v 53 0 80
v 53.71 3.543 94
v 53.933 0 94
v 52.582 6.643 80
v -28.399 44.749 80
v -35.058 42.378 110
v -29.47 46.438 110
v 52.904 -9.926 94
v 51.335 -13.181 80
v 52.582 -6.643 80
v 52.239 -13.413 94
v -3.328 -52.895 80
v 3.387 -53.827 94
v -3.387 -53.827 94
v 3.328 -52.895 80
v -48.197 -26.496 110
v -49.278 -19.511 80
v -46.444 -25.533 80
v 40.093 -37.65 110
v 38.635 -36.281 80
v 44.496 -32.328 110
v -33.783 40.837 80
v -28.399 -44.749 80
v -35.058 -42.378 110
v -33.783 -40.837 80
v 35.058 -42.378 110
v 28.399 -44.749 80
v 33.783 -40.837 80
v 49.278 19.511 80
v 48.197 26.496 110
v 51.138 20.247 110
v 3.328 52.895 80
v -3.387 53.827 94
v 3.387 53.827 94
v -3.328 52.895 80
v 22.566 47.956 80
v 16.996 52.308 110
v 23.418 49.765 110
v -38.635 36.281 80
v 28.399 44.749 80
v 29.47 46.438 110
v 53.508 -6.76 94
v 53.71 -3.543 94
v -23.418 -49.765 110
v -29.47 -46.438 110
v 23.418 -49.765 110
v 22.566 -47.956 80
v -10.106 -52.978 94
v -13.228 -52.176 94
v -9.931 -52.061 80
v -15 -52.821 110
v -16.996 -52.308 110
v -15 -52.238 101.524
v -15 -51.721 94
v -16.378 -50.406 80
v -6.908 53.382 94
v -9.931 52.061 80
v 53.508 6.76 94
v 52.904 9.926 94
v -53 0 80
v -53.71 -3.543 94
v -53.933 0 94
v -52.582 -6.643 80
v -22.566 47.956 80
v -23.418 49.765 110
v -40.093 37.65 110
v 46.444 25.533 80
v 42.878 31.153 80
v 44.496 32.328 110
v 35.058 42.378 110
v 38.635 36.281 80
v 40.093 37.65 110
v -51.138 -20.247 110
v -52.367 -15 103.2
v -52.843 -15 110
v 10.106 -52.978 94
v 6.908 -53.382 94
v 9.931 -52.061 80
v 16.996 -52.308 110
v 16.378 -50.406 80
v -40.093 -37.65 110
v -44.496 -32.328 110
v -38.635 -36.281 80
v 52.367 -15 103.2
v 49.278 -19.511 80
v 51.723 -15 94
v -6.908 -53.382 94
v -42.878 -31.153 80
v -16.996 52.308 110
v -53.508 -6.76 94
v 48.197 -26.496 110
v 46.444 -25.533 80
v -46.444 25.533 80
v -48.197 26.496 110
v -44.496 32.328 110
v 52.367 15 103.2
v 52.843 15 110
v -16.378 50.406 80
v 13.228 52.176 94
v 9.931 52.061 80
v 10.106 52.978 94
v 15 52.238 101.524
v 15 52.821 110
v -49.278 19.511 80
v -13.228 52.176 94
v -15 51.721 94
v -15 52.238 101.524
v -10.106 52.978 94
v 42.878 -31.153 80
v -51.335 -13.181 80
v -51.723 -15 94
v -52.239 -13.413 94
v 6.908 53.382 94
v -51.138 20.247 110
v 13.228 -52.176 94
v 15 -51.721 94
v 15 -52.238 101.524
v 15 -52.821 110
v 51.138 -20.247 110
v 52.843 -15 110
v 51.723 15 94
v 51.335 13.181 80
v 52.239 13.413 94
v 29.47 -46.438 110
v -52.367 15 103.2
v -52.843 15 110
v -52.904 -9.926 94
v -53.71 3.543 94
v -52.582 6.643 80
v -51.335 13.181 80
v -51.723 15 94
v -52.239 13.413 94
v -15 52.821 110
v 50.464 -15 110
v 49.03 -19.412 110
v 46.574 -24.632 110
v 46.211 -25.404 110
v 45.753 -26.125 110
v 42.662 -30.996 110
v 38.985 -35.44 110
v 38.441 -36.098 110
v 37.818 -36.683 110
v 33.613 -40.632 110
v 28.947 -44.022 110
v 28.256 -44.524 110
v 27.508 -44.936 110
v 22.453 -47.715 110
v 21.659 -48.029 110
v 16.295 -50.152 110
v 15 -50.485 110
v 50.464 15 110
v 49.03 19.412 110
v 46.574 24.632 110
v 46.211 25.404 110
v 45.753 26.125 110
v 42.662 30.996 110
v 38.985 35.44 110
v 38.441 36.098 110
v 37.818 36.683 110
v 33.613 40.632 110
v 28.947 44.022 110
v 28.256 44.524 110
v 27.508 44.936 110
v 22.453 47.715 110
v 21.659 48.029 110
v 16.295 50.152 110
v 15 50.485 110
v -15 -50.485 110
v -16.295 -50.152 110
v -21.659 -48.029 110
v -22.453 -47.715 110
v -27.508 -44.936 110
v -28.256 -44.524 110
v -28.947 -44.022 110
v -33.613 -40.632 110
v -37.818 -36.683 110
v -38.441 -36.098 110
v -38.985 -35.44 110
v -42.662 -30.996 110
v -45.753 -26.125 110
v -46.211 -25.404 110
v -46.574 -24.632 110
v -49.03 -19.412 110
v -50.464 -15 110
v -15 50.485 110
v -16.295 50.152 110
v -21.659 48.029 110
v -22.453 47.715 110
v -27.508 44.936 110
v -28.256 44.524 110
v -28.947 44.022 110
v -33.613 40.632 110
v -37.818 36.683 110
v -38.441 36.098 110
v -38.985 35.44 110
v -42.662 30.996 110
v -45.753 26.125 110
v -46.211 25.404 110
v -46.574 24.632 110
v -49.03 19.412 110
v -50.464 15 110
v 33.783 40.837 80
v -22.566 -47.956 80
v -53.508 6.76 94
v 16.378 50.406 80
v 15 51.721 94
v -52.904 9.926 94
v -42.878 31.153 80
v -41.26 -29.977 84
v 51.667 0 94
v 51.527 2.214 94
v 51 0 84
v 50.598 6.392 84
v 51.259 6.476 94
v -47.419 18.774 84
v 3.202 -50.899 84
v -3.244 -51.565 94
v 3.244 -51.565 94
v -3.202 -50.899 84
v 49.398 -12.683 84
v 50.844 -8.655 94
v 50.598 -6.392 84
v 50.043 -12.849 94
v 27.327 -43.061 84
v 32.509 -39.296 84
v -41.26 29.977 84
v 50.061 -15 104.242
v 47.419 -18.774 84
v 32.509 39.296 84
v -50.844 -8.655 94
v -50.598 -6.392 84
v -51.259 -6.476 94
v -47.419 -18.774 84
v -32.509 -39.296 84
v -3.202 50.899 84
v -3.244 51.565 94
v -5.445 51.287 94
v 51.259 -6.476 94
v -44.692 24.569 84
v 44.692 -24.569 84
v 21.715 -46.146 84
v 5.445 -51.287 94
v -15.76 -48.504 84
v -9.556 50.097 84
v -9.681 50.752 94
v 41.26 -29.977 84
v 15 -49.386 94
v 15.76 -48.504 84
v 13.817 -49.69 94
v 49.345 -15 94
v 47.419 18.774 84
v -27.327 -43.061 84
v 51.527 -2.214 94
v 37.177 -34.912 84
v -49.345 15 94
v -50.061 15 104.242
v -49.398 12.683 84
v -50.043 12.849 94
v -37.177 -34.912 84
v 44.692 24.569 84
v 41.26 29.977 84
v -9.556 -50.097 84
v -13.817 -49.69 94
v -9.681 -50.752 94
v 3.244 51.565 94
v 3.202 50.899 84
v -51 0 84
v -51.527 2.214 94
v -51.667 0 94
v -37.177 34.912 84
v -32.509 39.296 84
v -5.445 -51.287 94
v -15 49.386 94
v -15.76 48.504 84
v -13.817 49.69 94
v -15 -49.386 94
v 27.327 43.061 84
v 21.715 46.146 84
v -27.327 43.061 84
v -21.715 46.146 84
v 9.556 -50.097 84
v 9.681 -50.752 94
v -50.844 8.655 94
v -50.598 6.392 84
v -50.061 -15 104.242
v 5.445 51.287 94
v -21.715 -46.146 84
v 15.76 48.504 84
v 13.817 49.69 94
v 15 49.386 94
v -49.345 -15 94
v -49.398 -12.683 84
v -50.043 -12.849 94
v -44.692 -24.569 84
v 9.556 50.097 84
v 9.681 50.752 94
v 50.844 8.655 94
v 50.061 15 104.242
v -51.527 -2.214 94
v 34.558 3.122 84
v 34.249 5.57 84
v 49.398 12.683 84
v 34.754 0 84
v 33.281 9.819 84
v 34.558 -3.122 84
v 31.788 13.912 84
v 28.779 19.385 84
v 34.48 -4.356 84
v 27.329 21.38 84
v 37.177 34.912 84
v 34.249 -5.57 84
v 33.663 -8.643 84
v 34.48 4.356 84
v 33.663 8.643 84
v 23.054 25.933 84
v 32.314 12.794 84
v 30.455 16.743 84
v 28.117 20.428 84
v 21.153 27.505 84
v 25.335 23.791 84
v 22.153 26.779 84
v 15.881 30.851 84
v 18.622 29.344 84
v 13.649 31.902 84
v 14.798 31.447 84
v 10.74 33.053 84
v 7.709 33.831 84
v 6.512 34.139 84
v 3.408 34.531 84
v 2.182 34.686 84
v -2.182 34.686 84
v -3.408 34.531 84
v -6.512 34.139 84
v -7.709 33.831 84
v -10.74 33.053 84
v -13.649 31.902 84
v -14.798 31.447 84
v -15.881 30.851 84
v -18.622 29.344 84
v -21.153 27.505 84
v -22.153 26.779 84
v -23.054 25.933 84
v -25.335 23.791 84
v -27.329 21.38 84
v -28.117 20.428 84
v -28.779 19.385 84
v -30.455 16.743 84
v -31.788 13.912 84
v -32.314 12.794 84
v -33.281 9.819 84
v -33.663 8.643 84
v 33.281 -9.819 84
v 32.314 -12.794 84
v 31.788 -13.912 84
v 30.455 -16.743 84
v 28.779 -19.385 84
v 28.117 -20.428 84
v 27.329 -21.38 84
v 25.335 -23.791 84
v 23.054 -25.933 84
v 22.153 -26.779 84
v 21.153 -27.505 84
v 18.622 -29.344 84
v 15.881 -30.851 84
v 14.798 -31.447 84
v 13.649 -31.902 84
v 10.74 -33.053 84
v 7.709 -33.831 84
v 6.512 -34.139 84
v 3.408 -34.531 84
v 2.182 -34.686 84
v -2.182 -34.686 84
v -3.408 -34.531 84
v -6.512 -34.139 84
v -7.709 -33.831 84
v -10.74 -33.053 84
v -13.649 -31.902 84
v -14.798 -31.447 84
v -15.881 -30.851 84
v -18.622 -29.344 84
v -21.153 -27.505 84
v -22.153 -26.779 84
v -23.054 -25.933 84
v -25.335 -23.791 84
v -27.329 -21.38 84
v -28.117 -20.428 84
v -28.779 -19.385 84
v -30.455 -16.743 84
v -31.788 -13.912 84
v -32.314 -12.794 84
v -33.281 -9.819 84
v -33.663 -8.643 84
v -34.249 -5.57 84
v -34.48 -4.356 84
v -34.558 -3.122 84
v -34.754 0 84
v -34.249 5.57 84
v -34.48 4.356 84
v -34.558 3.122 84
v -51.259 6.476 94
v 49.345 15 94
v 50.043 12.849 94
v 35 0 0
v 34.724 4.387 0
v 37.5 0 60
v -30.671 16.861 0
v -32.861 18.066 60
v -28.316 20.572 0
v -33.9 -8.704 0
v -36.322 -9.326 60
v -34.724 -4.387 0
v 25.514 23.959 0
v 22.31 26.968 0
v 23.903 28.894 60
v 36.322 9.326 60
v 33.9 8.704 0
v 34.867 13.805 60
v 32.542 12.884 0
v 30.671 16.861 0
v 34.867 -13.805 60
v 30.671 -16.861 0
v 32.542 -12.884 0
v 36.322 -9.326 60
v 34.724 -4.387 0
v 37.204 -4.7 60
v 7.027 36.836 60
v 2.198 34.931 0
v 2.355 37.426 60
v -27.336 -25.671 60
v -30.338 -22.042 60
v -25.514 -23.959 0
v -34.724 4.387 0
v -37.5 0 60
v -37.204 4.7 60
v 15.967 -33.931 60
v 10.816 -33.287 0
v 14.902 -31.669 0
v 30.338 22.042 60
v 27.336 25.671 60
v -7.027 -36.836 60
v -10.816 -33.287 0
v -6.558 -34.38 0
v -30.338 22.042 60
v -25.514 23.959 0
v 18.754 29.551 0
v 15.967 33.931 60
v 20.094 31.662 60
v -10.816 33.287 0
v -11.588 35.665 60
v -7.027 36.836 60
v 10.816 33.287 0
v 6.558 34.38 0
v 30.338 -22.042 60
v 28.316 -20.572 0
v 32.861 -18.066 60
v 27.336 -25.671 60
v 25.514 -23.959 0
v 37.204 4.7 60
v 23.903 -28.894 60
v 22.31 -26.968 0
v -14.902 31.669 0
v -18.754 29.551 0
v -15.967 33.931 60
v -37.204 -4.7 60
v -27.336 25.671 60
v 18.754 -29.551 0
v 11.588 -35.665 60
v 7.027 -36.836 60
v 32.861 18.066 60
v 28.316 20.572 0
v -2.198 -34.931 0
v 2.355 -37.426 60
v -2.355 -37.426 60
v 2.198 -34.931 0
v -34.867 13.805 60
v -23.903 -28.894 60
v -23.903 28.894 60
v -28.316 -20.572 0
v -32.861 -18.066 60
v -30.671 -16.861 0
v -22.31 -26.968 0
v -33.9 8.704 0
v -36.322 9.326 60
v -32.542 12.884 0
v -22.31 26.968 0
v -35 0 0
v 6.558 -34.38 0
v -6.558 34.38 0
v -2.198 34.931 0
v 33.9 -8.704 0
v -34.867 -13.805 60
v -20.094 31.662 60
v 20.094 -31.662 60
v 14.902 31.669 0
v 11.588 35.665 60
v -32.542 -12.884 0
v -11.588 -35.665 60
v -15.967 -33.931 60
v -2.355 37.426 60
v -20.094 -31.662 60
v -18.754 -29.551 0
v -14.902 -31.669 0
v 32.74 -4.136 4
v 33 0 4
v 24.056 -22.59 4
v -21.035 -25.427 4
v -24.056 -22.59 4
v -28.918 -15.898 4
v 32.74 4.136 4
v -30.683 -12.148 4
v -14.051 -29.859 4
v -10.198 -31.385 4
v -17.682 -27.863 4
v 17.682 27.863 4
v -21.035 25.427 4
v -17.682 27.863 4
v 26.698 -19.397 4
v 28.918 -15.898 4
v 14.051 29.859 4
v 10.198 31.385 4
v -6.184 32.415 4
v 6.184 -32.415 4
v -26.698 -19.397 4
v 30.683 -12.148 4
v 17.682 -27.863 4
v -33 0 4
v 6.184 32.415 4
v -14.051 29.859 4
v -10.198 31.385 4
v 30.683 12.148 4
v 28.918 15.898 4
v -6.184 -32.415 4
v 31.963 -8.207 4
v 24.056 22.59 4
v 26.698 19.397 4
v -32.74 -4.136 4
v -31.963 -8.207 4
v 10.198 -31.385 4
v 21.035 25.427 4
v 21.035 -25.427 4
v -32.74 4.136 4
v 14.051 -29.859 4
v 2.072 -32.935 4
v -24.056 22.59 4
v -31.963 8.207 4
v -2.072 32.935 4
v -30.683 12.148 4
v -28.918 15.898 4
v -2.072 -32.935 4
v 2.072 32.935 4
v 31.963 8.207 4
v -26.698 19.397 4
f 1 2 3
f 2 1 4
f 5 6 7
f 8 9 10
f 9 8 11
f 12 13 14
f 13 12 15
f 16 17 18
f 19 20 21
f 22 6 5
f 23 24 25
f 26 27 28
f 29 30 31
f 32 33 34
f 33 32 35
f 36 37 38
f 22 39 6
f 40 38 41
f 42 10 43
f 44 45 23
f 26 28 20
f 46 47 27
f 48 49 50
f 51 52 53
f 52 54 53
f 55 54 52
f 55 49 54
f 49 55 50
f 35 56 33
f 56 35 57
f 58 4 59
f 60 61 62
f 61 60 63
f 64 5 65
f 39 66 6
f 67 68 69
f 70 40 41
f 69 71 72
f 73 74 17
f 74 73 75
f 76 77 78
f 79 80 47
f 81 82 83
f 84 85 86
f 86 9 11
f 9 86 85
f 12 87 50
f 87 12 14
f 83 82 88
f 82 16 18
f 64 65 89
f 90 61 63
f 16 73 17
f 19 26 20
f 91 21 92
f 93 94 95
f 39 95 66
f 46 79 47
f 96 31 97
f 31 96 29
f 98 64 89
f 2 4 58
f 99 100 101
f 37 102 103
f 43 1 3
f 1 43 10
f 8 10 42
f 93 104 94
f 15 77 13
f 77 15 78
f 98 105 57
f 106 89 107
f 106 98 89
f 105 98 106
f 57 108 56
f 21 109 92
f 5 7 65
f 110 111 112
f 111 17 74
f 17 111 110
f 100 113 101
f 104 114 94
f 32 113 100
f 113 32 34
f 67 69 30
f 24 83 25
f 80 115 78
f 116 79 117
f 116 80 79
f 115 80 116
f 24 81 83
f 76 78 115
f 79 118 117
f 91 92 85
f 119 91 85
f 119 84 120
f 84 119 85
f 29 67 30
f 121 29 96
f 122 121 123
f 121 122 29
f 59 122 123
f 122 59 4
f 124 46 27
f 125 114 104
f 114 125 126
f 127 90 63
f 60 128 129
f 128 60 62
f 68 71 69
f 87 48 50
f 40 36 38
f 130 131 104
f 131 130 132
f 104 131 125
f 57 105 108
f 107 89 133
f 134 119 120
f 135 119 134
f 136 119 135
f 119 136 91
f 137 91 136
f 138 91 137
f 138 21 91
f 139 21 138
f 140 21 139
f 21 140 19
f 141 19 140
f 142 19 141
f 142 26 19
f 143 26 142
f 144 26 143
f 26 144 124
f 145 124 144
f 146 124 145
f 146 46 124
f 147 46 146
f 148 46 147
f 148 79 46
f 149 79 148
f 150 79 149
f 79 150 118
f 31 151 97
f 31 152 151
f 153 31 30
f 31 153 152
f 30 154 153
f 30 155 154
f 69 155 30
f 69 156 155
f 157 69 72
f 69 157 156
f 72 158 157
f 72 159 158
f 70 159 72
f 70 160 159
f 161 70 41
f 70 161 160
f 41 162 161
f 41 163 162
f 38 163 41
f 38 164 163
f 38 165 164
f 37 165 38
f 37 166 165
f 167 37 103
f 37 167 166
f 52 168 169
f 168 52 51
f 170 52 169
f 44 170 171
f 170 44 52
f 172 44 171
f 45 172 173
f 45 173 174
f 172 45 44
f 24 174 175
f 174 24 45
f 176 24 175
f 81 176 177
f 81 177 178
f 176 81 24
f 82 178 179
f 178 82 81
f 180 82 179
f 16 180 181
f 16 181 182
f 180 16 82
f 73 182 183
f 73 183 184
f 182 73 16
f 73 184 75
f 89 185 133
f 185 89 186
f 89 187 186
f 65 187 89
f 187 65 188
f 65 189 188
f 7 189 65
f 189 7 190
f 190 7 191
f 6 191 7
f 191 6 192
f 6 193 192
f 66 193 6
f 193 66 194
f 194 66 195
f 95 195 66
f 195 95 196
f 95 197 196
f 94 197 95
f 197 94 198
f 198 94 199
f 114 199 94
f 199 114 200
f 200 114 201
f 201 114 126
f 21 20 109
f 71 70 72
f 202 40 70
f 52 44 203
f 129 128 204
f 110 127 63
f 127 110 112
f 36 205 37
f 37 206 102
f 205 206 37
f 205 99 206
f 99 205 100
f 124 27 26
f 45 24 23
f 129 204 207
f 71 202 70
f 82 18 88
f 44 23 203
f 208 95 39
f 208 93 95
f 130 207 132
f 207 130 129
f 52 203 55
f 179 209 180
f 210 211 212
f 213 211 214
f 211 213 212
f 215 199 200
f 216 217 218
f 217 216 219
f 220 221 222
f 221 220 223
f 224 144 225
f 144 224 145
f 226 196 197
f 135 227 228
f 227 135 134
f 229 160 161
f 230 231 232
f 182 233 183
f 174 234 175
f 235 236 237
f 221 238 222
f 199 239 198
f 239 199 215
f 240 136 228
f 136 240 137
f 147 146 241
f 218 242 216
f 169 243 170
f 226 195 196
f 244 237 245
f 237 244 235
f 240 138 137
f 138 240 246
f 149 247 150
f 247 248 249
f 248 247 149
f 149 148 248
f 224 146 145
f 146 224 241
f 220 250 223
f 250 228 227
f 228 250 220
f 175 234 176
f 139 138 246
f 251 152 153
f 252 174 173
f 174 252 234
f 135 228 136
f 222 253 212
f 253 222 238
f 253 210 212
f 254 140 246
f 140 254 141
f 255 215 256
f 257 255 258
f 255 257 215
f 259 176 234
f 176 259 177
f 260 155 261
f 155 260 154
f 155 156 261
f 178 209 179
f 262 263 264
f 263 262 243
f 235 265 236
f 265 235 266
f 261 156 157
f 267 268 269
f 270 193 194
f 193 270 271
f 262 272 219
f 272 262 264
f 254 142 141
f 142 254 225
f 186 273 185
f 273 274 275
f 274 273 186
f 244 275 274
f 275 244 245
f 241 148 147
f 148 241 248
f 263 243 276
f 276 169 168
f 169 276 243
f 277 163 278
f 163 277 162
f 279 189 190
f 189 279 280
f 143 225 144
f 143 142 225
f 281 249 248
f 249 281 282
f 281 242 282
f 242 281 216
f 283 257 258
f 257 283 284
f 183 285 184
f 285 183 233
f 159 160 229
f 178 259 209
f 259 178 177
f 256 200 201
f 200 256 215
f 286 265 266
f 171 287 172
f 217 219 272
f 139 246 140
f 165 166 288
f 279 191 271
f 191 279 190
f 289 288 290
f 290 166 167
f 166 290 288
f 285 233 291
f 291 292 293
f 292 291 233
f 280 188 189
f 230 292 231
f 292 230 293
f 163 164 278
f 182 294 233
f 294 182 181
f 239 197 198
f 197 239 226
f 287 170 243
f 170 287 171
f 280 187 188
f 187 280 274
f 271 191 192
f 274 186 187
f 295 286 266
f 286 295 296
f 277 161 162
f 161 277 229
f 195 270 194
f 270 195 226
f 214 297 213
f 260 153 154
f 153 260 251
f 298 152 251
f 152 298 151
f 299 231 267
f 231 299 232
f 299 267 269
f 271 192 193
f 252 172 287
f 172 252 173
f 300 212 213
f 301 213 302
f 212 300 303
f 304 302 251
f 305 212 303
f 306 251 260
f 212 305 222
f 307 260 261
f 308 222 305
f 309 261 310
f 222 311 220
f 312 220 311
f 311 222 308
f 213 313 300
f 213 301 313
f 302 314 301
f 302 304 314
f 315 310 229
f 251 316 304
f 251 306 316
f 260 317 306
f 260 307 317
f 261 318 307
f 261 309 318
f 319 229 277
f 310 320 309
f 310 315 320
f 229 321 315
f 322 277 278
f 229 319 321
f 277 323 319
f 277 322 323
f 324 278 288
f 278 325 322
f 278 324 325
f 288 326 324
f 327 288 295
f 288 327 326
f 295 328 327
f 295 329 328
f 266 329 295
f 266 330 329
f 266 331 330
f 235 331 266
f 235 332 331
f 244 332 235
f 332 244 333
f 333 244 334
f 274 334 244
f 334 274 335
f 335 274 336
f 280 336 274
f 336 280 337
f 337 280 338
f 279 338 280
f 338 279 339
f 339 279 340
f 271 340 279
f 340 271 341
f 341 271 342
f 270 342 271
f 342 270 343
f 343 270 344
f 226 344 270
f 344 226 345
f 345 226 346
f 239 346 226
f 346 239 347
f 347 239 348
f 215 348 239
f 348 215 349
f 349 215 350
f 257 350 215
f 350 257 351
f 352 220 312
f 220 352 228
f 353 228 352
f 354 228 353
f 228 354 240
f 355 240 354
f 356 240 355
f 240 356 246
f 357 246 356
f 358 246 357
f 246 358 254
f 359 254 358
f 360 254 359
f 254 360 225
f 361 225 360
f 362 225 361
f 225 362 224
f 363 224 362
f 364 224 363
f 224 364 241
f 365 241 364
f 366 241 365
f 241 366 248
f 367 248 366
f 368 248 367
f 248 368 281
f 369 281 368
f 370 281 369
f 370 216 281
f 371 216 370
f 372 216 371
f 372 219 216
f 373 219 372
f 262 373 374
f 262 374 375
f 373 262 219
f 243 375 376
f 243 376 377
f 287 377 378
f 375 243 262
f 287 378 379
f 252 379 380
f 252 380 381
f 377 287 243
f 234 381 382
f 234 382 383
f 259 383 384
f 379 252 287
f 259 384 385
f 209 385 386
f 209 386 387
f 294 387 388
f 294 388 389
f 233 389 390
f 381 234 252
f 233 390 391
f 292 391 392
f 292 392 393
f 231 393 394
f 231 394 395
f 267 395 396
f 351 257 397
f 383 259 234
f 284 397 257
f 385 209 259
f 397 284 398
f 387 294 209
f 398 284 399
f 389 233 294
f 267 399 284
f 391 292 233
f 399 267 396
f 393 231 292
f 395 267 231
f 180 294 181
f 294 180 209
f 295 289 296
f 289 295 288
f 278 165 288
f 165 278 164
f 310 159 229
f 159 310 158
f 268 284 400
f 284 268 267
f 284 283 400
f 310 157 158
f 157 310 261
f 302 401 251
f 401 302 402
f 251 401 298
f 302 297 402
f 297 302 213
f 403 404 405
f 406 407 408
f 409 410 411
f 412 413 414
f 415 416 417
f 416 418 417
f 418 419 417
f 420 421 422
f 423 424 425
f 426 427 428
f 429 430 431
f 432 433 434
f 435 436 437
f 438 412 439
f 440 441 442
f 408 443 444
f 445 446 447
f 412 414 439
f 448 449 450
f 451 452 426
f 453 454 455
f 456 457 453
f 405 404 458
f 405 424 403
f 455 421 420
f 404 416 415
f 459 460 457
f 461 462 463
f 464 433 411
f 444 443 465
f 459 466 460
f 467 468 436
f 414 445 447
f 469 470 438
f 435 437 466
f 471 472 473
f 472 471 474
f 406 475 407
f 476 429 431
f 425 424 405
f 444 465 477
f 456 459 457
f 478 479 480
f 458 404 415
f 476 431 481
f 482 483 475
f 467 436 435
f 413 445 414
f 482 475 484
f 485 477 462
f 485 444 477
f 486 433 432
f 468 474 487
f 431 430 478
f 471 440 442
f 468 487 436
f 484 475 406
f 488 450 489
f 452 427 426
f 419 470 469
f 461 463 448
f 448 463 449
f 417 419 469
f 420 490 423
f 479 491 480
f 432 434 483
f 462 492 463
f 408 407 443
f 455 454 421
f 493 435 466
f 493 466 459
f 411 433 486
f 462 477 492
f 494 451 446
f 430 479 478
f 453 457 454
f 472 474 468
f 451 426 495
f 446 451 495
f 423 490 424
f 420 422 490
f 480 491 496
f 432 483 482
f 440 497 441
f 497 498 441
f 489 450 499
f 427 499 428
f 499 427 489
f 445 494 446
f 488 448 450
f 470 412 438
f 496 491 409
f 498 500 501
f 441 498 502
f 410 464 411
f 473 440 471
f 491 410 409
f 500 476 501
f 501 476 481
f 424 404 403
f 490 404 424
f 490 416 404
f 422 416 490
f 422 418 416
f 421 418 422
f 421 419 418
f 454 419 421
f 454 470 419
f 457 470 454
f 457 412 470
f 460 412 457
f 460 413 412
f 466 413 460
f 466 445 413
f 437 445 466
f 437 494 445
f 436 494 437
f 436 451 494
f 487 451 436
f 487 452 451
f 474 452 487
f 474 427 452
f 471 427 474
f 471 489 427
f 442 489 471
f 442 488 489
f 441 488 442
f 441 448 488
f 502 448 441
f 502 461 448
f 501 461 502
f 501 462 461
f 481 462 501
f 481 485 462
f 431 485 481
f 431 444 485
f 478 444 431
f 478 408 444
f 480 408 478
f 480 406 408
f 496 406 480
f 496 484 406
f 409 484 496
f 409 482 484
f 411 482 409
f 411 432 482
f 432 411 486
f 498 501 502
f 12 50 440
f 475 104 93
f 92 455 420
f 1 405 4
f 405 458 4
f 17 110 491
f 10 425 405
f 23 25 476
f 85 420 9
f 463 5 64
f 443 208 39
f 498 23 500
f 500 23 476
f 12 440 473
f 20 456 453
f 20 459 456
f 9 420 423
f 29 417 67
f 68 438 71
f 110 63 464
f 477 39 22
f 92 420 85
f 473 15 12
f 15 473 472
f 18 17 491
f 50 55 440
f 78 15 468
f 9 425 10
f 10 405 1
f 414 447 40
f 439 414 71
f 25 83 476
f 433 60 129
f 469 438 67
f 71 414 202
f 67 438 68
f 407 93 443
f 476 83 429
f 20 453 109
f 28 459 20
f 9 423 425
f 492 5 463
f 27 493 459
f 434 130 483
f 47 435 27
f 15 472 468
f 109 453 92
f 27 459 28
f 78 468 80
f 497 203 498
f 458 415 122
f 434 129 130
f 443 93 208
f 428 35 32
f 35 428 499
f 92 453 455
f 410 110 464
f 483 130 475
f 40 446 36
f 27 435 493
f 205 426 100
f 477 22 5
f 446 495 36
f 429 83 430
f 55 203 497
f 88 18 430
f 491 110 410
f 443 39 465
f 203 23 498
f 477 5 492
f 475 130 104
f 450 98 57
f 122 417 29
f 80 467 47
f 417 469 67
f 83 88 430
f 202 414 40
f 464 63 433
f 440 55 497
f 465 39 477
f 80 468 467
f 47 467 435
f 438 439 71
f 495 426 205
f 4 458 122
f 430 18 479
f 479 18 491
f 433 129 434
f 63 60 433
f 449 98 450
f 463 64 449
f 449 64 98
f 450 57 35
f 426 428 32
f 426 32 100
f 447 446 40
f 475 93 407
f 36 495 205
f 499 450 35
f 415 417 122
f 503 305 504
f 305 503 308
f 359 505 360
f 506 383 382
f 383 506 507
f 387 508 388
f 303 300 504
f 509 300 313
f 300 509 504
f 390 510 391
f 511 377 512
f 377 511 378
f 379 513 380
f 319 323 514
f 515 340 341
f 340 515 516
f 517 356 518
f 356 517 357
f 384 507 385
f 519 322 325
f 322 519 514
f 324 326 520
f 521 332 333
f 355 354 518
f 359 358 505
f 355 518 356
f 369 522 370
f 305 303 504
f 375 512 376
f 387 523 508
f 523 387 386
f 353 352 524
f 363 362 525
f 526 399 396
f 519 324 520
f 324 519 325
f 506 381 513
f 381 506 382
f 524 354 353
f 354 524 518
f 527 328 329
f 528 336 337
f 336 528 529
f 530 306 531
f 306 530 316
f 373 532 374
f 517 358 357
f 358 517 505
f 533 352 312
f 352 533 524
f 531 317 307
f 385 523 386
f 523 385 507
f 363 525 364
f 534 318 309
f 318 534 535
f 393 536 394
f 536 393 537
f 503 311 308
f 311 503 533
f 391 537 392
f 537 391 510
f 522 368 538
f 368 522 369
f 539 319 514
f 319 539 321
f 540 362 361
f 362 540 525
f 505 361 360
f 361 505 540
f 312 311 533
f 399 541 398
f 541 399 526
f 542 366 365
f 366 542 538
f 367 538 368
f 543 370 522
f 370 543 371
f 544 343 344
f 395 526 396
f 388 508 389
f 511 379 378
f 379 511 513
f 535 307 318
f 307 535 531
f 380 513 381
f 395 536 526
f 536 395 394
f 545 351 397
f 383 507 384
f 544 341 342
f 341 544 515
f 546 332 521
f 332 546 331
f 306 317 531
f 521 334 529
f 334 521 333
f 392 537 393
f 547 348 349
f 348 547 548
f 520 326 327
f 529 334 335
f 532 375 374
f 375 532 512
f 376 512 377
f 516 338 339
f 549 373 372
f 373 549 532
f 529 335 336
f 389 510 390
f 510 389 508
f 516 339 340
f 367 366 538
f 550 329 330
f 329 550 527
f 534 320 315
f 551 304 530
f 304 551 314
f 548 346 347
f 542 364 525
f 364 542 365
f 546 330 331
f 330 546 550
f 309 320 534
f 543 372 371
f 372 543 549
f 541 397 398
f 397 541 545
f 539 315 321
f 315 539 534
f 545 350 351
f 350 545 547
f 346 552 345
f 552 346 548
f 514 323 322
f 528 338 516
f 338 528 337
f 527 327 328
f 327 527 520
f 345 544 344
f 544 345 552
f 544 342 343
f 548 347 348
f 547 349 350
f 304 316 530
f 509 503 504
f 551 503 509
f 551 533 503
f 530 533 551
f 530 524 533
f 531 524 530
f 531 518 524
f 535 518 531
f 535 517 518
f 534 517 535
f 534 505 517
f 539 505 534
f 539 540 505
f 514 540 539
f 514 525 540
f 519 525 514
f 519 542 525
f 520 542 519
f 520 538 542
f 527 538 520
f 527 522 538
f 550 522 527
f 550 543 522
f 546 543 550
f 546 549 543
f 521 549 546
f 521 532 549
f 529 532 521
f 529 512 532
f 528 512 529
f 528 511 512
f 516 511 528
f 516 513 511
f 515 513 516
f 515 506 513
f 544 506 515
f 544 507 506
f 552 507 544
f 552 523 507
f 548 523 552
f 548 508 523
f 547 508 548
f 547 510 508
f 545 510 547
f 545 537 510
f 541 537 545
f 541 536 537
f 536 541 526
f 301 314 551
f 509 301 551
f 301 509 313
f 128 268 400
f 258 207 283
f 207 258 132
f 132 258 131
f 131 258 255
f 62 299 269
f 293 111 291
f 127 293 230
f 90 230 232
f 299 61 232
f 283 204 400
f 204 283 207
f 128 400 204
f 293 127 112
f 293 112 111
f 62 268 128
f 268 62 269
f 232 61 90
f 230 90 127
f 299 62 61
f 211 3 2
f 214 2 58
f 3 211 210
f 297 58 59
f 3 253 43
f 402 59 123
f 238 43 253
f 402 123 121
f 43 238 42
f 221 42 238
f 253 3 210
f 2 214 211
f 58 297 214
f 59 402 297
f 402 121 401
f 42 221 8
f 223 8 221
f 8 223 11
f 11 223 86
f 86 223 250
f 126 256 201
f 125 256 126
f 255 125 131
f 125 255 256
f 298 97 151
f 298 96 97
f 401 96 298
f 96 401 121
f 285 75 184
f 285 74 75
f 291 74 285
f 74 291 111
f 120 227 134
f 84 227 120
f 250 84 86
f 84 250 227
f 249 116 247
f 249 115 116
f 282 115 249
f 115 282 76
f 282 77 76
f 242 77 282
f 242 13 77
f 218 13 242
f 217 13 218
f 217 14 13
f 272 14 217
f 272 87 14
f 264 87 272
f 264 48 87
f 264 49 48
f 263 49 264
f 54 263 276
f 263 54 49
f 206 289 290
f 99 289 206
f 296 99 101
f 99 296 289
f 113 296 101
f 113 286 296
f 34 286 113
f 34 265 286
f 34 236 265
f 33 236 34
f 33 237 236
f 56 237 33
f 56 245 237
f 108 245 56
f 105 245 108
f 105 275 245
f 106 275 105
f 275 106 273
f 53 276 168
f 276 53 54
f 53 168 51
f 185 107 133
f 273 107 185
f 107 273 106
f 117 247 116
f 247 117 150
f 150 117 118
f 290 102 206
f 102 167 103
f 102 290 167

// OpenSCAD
$fn=50;

wall_thickness = 4;

base_height = 60;
base_bottom_diameter = 70;
base_top_diameter = 75;

top_height = 30;
top_bottom_diameter = 106;
top_top_diameter = 110;

mid_height = 20;
mid_bottom_diameter = base_top_diameter;
mid_top_diameter = top_bottom_diameter;

difference()
{
    union(){

    // Base
    cylinder(h=base_height,
             r1=base_bottom_diameter/2,
             r2=base_top_diameter/2);
    
    // Mid
    translate([0,0,base_height])
    cylinder(h=mid_height,
             r1=mid_bottom_diameter/2,
             r2=mid_top_diameter/2);
        


    translate([0,0,base_height+mid_height])
    difference()
    {
        {   // Top
            cylinder(h=top_height,
                     r1=top_bottom_diameter/2,
                     r2=top_top_diameter/2);
            
            translate([0,0,wall_thickness])
            cylinder(h=top_height,
                     r1=top_bottom_diameter/2 - wall_thickness/2,
                     r2=top_top_diameter/2 - wall_thickness/2);
        }
    }
    }
    
    // Hollow
    translate([0,0,wall_thickness])
        cylinder(h=base_height+wall_thickness+50,
                 r1=base_bottom_diameter/2 - wall_thickness/2,
                 r2=base_top_diameter/2 - wall_thickness/2);

// Cutouts in top
{
    translate([0,0,base_height+mid_height+wall_thickness+10])
    //rotate([90,0,0])
    //rotate_extrude(angle=30,convexity=2)
    linear_extrude(top_height)
    square([top_top_diameter +1,30], center=true);
        
    translate([0,0,base_height+mid_height+wall_thickness+10])
    rotate([0,0,90])
    //rotate_extrude(angle=30,convexity=2)
    linear_extrude(top_height)
    square([top_top_diameter +1,30], center=true);
    }
}
